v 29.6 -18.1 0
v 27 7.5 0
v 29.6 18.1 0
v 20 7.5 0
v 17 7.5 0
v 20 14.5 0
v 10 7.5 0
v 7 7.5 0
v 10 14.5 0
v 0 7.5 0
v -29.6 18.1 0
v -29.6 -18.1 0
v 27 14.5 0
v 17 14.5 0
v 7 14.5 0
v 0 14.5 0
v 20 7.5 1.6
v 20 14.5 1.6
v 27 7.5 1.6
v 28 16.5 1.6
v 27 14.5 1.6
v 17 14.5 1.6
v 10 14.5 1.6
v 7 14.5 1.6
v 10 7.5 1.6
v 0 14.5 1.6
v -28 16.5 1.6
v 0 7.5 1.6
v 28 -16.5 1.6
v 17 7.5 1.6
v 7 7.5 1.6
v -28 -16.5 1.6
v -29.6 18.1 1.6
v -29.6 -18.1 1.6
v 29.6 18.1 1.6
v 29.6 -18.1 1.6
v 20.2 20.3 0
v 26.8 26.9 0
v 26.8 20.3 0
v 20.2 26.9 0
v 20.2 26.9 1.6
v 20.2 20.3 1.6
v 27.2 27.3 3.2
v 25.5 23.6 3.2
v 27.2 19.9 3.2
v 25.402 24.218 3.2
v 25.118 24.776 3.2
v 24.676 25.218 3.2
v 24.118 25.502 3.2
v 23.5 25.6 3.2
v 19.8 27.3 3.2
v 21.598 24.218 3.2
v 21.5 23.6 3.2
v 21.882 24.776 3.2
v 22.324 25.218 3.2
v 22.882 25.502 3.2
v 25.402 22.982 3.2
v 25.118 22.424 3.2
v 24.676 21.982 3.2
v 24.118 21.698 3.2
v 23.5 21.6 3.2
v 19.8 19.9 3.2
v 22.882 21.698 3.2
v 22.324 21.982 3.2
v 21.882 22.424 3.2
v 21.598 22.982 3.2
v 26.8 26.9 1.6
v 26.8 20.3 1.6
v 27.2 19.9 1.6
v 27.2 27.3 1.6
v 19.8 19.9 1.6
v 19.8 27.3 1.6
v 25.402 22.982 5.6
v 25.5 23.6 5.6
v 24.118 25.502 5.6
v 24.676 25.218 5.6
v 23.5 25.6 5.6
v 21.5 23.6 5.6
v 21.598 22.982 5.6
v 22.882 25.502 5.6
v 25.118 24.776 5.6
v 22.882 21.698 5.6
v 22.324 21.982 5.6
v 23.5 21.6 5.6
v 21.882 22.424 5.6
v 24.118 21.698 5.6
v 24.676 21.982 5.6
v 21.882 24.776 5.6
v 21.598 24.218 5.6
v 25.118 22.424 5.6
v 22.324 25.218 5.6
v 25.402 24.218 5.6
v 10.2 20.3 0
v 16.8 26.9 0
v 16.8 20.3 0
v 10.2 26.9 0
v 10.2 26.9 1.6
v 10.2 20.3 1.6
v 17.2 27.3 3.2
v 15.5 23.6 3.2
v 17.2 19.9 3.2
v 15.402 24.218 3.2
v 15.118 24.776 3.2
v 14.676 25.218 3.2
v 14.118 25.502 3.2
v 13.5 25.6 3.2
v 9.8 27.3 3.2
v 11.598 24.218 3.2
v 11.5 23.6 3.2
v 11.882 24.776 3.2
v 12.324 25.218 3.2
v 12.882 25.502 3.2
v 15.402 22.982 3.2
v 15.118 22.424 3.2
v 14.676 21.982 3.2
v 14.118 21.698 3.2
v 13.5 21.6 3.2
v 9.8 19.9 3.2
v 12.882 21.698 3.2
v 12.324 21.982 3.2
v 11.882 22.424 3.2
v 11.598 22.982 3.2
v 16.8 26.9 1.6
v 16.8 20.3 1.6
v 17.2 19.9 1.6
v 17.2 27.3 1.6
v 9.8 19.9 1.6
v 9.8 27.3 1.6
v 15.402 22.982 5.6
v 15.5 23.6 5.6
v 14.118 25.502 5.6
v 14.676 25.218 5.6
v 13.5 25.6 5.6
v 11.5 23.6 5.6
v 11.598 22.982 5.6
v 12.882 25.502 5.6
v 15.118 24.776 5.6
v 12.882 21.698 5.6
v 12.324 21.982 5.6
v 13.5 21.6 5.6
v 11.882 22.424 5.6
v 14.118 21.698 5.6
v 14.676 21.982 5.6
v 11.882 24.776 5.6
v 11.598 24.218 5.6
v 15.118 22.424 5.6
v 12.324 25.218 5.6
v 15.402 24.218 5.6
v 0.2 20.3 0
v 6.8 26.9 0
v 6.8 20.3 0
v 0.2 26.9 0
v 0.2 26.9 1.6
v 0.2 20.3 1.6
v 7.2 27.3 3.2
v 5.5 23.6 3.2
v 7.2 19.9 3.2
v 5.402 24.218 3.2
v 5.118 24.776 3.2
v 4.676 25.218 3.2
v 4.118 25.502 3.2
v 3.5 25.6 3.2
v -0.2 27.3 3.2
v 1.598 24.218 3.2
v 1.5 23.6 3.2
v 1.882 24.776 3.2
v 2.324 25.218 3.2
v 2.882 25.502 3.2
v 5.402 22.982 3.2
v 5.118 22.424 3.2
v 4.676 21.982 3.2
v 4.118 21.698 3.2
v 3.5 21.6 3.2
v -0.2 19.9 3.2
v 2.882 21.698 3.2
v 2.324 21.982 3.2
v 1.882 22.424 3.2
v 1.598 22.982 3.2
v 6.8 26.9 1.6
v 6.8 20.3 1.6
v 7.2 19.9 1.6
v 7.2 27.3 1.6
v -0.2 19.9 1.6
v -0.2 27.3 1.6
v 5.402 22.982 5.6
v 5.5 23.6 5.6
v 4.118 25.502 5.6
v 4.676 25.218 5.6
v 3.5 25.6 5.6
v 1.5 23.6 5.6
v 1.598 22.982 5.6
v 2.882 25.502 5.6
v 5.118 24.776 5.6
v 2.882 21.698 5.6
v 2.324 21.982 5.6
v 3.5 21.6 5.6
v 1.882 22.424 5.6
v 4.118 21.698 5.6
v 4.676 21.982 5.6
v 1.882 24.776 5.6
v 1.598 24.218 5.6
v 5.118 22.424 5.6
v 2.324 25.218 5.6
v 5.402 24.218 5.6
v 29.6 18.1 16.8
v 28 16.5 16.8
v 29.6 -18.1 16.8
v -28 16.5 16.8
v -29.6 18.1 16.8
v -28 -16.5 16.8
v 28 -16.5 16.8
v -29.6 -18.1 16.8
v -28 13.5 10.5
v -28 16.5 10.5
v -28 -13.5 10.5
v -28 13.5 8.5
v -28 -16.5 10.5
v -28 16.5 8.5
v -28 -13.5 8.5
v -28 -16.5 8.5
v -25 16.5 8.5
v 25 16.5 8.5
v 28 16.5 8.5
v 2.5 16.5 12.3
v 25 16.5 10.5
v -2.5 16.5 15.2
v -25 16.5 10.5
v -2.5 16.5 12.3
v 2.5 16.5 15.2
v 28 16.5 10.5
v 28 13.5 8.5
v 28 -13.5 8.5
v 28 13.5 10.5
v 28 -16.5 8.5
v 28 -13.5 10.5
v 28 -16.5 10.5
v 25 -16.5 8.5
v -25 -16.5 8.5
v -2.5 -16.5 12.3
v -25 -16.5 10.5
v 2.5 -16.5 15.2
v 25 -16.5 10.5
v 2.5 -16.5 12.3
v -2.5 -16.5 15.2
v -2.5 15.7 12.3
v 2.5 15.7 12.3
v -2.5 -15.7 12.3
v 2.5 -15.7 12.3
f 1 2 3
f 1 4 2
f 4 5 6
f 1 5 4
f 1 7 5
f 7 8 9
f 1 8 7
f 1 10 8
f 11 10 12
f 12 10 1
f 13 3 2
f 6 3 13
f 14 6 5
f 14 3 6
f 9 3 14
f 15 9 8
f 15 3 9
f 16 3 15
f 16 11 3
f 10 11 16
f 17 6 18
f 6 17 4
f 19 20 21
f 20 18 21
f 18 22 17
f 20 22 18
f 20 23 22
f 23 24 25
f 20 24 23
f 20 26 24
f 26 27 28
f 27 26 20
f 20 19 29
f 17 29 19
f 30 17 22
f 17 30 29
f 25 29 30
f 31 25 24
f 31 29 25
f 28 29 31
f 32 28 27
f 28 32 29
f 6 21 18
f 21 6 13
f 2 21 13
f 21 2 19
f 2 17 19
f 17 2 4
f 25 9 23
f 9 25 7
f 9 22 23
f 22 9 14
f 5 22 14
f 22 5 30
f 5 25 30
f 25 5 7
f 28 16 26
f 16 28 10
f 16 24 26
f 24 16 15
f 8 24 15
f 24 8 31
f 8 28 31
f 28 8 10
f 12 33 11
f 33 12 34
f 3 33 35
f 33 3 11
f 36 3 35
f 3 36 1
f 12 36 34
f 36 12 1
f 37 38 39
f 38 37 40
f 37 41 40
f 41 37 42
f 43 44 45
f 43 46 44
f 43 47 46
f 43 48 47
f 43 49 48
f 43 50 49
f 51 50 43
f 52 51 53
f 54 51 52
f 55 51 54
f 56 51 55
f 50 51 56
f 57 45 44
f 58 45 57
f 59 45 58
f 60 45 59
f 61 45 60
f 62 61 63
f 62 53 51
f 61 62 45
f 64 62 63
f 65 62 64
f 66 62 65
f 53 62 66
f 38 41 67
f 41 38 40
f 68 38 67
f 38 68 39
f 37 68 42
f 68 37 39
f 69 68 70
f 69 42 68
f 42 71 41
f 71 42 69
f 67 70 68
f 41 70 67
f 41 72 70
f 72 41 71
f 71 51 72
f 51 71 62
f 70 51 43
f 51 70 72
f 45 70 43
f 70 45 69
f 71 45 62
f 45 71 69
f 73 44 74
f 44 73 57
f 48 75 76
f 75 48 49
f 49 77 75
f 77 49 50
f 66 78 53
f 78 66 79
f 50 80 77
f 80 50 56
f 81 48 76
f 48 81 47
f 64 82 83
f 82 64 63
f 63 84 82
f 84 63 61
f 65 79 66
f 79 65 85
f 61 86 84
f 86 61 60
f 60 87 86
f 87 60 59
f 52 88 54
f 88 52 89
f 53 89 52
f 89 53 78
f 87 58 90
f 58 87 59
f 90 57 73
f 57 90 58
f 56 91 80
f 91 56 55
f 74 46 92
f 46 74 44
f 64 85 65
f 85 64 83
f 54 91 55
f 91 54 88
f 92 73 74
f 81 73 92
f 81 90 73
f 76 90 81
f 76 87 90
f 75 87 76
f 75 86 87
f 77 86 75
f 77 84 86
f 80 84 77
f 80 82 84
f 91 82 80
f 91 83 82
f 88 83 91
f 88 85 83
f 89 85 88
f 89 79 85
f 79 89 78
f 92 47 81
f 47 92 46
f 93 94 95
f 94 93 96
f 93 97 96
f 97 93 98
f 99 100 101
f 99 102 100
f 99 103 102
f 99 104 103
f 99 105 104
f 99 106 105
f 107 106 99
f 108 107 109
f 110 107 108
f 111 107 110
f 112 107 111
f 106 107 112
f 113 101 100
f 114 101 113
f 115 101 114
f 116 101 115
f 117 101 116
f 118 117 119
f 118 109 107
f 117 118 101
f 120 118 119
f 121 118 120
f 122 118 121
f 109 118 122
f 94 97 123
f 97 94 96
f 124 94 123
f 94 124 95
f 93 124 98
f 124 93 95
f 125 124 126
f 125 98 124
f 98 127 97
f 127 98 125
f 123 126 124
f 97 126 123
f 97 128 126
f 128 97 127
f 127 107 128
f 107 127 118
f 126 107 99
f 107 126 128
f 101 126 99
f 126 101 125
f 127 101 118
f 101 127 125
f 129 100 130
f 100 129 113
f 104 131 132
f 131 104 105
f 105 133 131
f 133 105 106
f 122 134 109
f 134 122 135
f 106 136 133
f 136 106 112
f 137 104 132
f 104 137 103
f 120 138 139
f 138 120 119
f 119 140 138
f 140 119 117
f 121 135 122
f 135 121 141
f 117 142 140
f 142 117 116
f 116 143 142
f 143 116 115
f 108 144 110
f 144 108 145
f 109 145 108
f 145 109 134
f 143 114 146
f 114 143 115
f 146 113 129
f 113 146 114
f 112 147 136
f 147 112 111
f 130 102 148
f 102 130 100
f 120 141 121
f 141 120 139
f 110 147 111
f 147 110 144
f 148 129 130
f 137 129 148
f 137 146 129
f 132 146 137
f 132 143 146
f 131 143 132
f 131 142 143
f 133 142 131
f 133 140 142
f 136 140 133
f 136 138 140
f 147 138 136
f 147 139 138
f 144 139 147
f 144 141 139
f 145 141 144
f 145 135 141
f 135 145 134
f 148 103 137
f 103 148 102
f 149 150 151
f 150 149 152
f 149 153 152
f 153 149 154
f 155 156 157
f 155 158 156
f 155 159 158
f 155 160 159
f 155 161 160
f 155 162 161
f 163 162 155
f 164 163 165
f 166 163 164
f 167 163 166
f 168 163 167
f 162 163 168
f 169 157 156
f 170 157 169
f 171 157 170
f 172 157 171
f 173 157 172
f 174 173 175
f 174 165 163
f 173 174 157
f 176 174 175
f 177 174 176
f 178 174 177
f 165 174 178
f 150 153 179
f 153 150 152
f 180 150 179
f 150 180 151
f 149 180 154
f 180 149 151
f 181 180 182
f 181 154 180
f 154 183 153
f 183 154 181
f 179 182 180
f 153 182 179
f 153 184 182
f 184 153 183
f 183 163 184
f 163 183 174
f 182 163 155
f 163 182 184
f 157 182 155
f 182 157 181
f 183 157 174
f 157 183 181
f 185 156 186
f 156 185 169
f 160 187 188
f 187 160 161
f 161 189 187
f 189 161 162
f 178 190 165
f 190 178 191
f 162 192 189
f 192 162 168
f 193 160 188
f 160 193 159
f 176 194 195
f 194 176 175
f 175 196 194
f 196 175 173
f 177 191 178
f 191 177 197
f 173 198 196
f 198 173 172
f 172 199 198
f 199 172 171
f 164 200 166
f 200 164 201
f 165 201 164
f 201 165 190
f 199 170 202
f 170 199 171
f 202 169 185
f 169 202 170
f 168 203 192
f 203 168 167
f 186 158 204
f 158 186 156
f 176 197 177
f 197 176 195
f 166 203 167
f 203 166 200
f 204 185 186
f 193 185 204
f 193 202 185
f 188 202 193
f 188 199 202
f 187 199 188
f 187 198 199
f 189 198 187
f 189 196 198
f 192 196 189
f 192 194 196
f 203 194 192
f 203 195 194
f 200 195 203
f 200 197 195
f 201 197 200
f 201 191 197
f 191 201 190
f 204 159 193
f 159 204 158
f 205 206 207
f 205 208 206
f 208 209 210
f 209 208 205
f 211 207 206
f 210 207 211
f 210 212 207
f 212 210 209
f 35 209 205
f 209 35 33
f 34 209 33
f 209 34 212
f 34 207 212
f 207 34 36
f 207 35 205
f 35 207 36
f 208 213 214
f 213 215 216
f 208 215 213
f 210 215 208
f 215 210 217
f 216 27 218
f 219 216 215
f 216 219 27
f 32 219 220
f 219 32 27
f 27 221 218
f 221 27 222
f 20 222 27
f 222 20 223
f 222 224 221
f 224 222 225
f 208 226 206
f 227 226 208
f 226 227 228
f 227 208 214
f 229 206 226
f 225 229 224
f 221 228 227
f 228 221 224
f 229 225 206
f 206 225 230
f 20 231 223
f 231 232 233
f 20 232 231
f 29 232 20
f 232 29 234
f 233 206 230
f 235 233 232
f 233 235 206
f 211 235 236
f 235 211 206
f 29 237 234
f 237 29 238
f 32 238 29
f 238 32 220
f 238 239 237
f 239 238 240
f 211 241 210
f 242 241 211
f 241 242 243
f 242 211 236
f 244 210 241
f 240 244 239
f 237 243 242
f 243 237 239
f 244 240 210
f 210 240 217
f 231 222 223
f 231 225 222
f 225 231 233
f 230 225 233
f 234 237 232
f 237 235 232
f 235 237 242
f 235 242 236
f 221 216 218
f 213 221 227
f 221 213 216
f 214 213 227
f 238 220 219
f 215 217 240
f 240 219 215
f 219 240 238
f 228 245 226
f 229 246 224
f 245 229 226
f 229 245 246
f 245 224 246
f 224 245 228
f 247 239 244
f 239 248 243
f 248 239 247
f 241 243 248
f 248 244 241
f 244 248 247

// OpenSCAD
boardThickness = 1.5;
wallThickness = 1.6;
ledHeight = 9;
spaceUnderBoard = 3;
verticalTolerance = 0.1;

boxInnerHeight = spaceUnderBoard + boardThickness + ledHeight + verticalTolerance;
boxHeight = boxInnerHeight + (wallThickness * 2);

bottomInner = [56, 33];
cornerCoords = [for (a = bottomInner) a / 2];
bottom = [for (a = bottomInner) a + wallThickness * 2];

buttonsOffsetX = 4.5;
buttonsOffsetY = 5.5;
buttonsDistance = 10;
buttonHeight = 5;
buttonWidth = 7;
buttonTolerance = 0.2;
presserRadius = 2;
cornerHeight = 2;
cornerWidth = 3;

// Face
difference() {
    // Bottom of the box (top of the model)
    linear_extrude(wallThickness) square(bottom, true);
    
    // Button holes
    union() {
        for (i = [0 : 2]) {
            translate([
                cornerCoords[0] - buttonsOffsetX - buttonsDistance * i,
                cornerCoords[1] - buttonsOffsetY,
                0,
            ])
            linear_extrude(wallThickness) square(buttonWidth, true);
        }
    };
};

// Walls
linear_extrude(boxHeight) {
    
    difference() {
        square(bottom, true);
        square(bottomInner, true);
    }
};

// Corner limitors
module cornerLimitor() {
    translate([
        cornerCoords[0],
        cornerCoords[1],
        wallThickness + ledHeight - cornerHeight - verticalTolerance
    ])
    linear_extrude(cornerHeight)
    polygon([[0, 0], [0, -cornerWidth], [-cornerWidth, 0]]);
};
cornerLimitor();
mirror([0, -1, 0]) cornerLimitor();
mirror([-1, 0, 0]) cornerLimitor();
mirror([0, -1, 0]) mirror([-1, 0, 0]) cornerLimitor();

// Bottom limitors
bottomLimitorDepth = 0.8;
bottomLimitorWidth = 5;
bottomLimitorZ = wallThickness + ledHeight + boardThickness + verticalTolerance * 2;
bottomLimitorHeight = boxHeight - bottomLimitorZ - wallThickness;
module bottomLimitor() {
    translate([
        - bottomLimitorWidth / 2,
        cornerCoords[1],
        bottomLimitorZ
    ])
    rotate([180, -90, 0])
    linear_extrude(bottomLimitorWidth)
    polygon([
        [0, 0],
        [bottomLimitorHeight, 0],
        [0, bottomLimitorDepth]
    ]);
};
bottomLimitor();
mirror([0, -1, 0]) bottomLimitor();

// (original bottom limitor, for reference)
module bottomLimitorOrig() {
    translate([
        0,
        cornerCoords[1] - bottomLimitorDepth / 2,
        bottomLimitorZ
    ])
    linear_extrude(boxHeight - bottomLimitorZ - wallThickness)
    square([bottomLimitorWidth, bottomLimitorDepth], true);
};
// bottomLimitorOrig();

// Buttons
translate([0, buttonsOffsetY * 2 + wallThickness, 0])
for (i = [0 : 2]) {
    
    // button face
    translate([
        cornerCoords[0] - buttonsOffsetX - buttonsDistance * i,
        cornerCoords[1] - buttonsOffsetY,
        0,
    ])
    linear_extrude(wallThickness * 2)
    square(buttonWidth - buttonTolerance * 2, true);
    
    // button back
    translate([
        cornerCoords[0] - buttonsOffsetX - buttonsDistance * i,
        cornerCoords[1] - buttonsOffsetY,
        wallThickness,
    ])
    linear_extrude(wallThickness)
    square(buttonWidth + buttonTolerance * 2, true);
    
    // presser
    translate([
        cornerCoords[0] - buttonsOffsetX - buttonsDistance * i,
        cornerCoords[1] - buttonsOffsetY,
        0,
    ])
    linear_extrude(ledHeight - buttonHeight + wallThickness)
    circle(presserRadius, $fn=20);
};
